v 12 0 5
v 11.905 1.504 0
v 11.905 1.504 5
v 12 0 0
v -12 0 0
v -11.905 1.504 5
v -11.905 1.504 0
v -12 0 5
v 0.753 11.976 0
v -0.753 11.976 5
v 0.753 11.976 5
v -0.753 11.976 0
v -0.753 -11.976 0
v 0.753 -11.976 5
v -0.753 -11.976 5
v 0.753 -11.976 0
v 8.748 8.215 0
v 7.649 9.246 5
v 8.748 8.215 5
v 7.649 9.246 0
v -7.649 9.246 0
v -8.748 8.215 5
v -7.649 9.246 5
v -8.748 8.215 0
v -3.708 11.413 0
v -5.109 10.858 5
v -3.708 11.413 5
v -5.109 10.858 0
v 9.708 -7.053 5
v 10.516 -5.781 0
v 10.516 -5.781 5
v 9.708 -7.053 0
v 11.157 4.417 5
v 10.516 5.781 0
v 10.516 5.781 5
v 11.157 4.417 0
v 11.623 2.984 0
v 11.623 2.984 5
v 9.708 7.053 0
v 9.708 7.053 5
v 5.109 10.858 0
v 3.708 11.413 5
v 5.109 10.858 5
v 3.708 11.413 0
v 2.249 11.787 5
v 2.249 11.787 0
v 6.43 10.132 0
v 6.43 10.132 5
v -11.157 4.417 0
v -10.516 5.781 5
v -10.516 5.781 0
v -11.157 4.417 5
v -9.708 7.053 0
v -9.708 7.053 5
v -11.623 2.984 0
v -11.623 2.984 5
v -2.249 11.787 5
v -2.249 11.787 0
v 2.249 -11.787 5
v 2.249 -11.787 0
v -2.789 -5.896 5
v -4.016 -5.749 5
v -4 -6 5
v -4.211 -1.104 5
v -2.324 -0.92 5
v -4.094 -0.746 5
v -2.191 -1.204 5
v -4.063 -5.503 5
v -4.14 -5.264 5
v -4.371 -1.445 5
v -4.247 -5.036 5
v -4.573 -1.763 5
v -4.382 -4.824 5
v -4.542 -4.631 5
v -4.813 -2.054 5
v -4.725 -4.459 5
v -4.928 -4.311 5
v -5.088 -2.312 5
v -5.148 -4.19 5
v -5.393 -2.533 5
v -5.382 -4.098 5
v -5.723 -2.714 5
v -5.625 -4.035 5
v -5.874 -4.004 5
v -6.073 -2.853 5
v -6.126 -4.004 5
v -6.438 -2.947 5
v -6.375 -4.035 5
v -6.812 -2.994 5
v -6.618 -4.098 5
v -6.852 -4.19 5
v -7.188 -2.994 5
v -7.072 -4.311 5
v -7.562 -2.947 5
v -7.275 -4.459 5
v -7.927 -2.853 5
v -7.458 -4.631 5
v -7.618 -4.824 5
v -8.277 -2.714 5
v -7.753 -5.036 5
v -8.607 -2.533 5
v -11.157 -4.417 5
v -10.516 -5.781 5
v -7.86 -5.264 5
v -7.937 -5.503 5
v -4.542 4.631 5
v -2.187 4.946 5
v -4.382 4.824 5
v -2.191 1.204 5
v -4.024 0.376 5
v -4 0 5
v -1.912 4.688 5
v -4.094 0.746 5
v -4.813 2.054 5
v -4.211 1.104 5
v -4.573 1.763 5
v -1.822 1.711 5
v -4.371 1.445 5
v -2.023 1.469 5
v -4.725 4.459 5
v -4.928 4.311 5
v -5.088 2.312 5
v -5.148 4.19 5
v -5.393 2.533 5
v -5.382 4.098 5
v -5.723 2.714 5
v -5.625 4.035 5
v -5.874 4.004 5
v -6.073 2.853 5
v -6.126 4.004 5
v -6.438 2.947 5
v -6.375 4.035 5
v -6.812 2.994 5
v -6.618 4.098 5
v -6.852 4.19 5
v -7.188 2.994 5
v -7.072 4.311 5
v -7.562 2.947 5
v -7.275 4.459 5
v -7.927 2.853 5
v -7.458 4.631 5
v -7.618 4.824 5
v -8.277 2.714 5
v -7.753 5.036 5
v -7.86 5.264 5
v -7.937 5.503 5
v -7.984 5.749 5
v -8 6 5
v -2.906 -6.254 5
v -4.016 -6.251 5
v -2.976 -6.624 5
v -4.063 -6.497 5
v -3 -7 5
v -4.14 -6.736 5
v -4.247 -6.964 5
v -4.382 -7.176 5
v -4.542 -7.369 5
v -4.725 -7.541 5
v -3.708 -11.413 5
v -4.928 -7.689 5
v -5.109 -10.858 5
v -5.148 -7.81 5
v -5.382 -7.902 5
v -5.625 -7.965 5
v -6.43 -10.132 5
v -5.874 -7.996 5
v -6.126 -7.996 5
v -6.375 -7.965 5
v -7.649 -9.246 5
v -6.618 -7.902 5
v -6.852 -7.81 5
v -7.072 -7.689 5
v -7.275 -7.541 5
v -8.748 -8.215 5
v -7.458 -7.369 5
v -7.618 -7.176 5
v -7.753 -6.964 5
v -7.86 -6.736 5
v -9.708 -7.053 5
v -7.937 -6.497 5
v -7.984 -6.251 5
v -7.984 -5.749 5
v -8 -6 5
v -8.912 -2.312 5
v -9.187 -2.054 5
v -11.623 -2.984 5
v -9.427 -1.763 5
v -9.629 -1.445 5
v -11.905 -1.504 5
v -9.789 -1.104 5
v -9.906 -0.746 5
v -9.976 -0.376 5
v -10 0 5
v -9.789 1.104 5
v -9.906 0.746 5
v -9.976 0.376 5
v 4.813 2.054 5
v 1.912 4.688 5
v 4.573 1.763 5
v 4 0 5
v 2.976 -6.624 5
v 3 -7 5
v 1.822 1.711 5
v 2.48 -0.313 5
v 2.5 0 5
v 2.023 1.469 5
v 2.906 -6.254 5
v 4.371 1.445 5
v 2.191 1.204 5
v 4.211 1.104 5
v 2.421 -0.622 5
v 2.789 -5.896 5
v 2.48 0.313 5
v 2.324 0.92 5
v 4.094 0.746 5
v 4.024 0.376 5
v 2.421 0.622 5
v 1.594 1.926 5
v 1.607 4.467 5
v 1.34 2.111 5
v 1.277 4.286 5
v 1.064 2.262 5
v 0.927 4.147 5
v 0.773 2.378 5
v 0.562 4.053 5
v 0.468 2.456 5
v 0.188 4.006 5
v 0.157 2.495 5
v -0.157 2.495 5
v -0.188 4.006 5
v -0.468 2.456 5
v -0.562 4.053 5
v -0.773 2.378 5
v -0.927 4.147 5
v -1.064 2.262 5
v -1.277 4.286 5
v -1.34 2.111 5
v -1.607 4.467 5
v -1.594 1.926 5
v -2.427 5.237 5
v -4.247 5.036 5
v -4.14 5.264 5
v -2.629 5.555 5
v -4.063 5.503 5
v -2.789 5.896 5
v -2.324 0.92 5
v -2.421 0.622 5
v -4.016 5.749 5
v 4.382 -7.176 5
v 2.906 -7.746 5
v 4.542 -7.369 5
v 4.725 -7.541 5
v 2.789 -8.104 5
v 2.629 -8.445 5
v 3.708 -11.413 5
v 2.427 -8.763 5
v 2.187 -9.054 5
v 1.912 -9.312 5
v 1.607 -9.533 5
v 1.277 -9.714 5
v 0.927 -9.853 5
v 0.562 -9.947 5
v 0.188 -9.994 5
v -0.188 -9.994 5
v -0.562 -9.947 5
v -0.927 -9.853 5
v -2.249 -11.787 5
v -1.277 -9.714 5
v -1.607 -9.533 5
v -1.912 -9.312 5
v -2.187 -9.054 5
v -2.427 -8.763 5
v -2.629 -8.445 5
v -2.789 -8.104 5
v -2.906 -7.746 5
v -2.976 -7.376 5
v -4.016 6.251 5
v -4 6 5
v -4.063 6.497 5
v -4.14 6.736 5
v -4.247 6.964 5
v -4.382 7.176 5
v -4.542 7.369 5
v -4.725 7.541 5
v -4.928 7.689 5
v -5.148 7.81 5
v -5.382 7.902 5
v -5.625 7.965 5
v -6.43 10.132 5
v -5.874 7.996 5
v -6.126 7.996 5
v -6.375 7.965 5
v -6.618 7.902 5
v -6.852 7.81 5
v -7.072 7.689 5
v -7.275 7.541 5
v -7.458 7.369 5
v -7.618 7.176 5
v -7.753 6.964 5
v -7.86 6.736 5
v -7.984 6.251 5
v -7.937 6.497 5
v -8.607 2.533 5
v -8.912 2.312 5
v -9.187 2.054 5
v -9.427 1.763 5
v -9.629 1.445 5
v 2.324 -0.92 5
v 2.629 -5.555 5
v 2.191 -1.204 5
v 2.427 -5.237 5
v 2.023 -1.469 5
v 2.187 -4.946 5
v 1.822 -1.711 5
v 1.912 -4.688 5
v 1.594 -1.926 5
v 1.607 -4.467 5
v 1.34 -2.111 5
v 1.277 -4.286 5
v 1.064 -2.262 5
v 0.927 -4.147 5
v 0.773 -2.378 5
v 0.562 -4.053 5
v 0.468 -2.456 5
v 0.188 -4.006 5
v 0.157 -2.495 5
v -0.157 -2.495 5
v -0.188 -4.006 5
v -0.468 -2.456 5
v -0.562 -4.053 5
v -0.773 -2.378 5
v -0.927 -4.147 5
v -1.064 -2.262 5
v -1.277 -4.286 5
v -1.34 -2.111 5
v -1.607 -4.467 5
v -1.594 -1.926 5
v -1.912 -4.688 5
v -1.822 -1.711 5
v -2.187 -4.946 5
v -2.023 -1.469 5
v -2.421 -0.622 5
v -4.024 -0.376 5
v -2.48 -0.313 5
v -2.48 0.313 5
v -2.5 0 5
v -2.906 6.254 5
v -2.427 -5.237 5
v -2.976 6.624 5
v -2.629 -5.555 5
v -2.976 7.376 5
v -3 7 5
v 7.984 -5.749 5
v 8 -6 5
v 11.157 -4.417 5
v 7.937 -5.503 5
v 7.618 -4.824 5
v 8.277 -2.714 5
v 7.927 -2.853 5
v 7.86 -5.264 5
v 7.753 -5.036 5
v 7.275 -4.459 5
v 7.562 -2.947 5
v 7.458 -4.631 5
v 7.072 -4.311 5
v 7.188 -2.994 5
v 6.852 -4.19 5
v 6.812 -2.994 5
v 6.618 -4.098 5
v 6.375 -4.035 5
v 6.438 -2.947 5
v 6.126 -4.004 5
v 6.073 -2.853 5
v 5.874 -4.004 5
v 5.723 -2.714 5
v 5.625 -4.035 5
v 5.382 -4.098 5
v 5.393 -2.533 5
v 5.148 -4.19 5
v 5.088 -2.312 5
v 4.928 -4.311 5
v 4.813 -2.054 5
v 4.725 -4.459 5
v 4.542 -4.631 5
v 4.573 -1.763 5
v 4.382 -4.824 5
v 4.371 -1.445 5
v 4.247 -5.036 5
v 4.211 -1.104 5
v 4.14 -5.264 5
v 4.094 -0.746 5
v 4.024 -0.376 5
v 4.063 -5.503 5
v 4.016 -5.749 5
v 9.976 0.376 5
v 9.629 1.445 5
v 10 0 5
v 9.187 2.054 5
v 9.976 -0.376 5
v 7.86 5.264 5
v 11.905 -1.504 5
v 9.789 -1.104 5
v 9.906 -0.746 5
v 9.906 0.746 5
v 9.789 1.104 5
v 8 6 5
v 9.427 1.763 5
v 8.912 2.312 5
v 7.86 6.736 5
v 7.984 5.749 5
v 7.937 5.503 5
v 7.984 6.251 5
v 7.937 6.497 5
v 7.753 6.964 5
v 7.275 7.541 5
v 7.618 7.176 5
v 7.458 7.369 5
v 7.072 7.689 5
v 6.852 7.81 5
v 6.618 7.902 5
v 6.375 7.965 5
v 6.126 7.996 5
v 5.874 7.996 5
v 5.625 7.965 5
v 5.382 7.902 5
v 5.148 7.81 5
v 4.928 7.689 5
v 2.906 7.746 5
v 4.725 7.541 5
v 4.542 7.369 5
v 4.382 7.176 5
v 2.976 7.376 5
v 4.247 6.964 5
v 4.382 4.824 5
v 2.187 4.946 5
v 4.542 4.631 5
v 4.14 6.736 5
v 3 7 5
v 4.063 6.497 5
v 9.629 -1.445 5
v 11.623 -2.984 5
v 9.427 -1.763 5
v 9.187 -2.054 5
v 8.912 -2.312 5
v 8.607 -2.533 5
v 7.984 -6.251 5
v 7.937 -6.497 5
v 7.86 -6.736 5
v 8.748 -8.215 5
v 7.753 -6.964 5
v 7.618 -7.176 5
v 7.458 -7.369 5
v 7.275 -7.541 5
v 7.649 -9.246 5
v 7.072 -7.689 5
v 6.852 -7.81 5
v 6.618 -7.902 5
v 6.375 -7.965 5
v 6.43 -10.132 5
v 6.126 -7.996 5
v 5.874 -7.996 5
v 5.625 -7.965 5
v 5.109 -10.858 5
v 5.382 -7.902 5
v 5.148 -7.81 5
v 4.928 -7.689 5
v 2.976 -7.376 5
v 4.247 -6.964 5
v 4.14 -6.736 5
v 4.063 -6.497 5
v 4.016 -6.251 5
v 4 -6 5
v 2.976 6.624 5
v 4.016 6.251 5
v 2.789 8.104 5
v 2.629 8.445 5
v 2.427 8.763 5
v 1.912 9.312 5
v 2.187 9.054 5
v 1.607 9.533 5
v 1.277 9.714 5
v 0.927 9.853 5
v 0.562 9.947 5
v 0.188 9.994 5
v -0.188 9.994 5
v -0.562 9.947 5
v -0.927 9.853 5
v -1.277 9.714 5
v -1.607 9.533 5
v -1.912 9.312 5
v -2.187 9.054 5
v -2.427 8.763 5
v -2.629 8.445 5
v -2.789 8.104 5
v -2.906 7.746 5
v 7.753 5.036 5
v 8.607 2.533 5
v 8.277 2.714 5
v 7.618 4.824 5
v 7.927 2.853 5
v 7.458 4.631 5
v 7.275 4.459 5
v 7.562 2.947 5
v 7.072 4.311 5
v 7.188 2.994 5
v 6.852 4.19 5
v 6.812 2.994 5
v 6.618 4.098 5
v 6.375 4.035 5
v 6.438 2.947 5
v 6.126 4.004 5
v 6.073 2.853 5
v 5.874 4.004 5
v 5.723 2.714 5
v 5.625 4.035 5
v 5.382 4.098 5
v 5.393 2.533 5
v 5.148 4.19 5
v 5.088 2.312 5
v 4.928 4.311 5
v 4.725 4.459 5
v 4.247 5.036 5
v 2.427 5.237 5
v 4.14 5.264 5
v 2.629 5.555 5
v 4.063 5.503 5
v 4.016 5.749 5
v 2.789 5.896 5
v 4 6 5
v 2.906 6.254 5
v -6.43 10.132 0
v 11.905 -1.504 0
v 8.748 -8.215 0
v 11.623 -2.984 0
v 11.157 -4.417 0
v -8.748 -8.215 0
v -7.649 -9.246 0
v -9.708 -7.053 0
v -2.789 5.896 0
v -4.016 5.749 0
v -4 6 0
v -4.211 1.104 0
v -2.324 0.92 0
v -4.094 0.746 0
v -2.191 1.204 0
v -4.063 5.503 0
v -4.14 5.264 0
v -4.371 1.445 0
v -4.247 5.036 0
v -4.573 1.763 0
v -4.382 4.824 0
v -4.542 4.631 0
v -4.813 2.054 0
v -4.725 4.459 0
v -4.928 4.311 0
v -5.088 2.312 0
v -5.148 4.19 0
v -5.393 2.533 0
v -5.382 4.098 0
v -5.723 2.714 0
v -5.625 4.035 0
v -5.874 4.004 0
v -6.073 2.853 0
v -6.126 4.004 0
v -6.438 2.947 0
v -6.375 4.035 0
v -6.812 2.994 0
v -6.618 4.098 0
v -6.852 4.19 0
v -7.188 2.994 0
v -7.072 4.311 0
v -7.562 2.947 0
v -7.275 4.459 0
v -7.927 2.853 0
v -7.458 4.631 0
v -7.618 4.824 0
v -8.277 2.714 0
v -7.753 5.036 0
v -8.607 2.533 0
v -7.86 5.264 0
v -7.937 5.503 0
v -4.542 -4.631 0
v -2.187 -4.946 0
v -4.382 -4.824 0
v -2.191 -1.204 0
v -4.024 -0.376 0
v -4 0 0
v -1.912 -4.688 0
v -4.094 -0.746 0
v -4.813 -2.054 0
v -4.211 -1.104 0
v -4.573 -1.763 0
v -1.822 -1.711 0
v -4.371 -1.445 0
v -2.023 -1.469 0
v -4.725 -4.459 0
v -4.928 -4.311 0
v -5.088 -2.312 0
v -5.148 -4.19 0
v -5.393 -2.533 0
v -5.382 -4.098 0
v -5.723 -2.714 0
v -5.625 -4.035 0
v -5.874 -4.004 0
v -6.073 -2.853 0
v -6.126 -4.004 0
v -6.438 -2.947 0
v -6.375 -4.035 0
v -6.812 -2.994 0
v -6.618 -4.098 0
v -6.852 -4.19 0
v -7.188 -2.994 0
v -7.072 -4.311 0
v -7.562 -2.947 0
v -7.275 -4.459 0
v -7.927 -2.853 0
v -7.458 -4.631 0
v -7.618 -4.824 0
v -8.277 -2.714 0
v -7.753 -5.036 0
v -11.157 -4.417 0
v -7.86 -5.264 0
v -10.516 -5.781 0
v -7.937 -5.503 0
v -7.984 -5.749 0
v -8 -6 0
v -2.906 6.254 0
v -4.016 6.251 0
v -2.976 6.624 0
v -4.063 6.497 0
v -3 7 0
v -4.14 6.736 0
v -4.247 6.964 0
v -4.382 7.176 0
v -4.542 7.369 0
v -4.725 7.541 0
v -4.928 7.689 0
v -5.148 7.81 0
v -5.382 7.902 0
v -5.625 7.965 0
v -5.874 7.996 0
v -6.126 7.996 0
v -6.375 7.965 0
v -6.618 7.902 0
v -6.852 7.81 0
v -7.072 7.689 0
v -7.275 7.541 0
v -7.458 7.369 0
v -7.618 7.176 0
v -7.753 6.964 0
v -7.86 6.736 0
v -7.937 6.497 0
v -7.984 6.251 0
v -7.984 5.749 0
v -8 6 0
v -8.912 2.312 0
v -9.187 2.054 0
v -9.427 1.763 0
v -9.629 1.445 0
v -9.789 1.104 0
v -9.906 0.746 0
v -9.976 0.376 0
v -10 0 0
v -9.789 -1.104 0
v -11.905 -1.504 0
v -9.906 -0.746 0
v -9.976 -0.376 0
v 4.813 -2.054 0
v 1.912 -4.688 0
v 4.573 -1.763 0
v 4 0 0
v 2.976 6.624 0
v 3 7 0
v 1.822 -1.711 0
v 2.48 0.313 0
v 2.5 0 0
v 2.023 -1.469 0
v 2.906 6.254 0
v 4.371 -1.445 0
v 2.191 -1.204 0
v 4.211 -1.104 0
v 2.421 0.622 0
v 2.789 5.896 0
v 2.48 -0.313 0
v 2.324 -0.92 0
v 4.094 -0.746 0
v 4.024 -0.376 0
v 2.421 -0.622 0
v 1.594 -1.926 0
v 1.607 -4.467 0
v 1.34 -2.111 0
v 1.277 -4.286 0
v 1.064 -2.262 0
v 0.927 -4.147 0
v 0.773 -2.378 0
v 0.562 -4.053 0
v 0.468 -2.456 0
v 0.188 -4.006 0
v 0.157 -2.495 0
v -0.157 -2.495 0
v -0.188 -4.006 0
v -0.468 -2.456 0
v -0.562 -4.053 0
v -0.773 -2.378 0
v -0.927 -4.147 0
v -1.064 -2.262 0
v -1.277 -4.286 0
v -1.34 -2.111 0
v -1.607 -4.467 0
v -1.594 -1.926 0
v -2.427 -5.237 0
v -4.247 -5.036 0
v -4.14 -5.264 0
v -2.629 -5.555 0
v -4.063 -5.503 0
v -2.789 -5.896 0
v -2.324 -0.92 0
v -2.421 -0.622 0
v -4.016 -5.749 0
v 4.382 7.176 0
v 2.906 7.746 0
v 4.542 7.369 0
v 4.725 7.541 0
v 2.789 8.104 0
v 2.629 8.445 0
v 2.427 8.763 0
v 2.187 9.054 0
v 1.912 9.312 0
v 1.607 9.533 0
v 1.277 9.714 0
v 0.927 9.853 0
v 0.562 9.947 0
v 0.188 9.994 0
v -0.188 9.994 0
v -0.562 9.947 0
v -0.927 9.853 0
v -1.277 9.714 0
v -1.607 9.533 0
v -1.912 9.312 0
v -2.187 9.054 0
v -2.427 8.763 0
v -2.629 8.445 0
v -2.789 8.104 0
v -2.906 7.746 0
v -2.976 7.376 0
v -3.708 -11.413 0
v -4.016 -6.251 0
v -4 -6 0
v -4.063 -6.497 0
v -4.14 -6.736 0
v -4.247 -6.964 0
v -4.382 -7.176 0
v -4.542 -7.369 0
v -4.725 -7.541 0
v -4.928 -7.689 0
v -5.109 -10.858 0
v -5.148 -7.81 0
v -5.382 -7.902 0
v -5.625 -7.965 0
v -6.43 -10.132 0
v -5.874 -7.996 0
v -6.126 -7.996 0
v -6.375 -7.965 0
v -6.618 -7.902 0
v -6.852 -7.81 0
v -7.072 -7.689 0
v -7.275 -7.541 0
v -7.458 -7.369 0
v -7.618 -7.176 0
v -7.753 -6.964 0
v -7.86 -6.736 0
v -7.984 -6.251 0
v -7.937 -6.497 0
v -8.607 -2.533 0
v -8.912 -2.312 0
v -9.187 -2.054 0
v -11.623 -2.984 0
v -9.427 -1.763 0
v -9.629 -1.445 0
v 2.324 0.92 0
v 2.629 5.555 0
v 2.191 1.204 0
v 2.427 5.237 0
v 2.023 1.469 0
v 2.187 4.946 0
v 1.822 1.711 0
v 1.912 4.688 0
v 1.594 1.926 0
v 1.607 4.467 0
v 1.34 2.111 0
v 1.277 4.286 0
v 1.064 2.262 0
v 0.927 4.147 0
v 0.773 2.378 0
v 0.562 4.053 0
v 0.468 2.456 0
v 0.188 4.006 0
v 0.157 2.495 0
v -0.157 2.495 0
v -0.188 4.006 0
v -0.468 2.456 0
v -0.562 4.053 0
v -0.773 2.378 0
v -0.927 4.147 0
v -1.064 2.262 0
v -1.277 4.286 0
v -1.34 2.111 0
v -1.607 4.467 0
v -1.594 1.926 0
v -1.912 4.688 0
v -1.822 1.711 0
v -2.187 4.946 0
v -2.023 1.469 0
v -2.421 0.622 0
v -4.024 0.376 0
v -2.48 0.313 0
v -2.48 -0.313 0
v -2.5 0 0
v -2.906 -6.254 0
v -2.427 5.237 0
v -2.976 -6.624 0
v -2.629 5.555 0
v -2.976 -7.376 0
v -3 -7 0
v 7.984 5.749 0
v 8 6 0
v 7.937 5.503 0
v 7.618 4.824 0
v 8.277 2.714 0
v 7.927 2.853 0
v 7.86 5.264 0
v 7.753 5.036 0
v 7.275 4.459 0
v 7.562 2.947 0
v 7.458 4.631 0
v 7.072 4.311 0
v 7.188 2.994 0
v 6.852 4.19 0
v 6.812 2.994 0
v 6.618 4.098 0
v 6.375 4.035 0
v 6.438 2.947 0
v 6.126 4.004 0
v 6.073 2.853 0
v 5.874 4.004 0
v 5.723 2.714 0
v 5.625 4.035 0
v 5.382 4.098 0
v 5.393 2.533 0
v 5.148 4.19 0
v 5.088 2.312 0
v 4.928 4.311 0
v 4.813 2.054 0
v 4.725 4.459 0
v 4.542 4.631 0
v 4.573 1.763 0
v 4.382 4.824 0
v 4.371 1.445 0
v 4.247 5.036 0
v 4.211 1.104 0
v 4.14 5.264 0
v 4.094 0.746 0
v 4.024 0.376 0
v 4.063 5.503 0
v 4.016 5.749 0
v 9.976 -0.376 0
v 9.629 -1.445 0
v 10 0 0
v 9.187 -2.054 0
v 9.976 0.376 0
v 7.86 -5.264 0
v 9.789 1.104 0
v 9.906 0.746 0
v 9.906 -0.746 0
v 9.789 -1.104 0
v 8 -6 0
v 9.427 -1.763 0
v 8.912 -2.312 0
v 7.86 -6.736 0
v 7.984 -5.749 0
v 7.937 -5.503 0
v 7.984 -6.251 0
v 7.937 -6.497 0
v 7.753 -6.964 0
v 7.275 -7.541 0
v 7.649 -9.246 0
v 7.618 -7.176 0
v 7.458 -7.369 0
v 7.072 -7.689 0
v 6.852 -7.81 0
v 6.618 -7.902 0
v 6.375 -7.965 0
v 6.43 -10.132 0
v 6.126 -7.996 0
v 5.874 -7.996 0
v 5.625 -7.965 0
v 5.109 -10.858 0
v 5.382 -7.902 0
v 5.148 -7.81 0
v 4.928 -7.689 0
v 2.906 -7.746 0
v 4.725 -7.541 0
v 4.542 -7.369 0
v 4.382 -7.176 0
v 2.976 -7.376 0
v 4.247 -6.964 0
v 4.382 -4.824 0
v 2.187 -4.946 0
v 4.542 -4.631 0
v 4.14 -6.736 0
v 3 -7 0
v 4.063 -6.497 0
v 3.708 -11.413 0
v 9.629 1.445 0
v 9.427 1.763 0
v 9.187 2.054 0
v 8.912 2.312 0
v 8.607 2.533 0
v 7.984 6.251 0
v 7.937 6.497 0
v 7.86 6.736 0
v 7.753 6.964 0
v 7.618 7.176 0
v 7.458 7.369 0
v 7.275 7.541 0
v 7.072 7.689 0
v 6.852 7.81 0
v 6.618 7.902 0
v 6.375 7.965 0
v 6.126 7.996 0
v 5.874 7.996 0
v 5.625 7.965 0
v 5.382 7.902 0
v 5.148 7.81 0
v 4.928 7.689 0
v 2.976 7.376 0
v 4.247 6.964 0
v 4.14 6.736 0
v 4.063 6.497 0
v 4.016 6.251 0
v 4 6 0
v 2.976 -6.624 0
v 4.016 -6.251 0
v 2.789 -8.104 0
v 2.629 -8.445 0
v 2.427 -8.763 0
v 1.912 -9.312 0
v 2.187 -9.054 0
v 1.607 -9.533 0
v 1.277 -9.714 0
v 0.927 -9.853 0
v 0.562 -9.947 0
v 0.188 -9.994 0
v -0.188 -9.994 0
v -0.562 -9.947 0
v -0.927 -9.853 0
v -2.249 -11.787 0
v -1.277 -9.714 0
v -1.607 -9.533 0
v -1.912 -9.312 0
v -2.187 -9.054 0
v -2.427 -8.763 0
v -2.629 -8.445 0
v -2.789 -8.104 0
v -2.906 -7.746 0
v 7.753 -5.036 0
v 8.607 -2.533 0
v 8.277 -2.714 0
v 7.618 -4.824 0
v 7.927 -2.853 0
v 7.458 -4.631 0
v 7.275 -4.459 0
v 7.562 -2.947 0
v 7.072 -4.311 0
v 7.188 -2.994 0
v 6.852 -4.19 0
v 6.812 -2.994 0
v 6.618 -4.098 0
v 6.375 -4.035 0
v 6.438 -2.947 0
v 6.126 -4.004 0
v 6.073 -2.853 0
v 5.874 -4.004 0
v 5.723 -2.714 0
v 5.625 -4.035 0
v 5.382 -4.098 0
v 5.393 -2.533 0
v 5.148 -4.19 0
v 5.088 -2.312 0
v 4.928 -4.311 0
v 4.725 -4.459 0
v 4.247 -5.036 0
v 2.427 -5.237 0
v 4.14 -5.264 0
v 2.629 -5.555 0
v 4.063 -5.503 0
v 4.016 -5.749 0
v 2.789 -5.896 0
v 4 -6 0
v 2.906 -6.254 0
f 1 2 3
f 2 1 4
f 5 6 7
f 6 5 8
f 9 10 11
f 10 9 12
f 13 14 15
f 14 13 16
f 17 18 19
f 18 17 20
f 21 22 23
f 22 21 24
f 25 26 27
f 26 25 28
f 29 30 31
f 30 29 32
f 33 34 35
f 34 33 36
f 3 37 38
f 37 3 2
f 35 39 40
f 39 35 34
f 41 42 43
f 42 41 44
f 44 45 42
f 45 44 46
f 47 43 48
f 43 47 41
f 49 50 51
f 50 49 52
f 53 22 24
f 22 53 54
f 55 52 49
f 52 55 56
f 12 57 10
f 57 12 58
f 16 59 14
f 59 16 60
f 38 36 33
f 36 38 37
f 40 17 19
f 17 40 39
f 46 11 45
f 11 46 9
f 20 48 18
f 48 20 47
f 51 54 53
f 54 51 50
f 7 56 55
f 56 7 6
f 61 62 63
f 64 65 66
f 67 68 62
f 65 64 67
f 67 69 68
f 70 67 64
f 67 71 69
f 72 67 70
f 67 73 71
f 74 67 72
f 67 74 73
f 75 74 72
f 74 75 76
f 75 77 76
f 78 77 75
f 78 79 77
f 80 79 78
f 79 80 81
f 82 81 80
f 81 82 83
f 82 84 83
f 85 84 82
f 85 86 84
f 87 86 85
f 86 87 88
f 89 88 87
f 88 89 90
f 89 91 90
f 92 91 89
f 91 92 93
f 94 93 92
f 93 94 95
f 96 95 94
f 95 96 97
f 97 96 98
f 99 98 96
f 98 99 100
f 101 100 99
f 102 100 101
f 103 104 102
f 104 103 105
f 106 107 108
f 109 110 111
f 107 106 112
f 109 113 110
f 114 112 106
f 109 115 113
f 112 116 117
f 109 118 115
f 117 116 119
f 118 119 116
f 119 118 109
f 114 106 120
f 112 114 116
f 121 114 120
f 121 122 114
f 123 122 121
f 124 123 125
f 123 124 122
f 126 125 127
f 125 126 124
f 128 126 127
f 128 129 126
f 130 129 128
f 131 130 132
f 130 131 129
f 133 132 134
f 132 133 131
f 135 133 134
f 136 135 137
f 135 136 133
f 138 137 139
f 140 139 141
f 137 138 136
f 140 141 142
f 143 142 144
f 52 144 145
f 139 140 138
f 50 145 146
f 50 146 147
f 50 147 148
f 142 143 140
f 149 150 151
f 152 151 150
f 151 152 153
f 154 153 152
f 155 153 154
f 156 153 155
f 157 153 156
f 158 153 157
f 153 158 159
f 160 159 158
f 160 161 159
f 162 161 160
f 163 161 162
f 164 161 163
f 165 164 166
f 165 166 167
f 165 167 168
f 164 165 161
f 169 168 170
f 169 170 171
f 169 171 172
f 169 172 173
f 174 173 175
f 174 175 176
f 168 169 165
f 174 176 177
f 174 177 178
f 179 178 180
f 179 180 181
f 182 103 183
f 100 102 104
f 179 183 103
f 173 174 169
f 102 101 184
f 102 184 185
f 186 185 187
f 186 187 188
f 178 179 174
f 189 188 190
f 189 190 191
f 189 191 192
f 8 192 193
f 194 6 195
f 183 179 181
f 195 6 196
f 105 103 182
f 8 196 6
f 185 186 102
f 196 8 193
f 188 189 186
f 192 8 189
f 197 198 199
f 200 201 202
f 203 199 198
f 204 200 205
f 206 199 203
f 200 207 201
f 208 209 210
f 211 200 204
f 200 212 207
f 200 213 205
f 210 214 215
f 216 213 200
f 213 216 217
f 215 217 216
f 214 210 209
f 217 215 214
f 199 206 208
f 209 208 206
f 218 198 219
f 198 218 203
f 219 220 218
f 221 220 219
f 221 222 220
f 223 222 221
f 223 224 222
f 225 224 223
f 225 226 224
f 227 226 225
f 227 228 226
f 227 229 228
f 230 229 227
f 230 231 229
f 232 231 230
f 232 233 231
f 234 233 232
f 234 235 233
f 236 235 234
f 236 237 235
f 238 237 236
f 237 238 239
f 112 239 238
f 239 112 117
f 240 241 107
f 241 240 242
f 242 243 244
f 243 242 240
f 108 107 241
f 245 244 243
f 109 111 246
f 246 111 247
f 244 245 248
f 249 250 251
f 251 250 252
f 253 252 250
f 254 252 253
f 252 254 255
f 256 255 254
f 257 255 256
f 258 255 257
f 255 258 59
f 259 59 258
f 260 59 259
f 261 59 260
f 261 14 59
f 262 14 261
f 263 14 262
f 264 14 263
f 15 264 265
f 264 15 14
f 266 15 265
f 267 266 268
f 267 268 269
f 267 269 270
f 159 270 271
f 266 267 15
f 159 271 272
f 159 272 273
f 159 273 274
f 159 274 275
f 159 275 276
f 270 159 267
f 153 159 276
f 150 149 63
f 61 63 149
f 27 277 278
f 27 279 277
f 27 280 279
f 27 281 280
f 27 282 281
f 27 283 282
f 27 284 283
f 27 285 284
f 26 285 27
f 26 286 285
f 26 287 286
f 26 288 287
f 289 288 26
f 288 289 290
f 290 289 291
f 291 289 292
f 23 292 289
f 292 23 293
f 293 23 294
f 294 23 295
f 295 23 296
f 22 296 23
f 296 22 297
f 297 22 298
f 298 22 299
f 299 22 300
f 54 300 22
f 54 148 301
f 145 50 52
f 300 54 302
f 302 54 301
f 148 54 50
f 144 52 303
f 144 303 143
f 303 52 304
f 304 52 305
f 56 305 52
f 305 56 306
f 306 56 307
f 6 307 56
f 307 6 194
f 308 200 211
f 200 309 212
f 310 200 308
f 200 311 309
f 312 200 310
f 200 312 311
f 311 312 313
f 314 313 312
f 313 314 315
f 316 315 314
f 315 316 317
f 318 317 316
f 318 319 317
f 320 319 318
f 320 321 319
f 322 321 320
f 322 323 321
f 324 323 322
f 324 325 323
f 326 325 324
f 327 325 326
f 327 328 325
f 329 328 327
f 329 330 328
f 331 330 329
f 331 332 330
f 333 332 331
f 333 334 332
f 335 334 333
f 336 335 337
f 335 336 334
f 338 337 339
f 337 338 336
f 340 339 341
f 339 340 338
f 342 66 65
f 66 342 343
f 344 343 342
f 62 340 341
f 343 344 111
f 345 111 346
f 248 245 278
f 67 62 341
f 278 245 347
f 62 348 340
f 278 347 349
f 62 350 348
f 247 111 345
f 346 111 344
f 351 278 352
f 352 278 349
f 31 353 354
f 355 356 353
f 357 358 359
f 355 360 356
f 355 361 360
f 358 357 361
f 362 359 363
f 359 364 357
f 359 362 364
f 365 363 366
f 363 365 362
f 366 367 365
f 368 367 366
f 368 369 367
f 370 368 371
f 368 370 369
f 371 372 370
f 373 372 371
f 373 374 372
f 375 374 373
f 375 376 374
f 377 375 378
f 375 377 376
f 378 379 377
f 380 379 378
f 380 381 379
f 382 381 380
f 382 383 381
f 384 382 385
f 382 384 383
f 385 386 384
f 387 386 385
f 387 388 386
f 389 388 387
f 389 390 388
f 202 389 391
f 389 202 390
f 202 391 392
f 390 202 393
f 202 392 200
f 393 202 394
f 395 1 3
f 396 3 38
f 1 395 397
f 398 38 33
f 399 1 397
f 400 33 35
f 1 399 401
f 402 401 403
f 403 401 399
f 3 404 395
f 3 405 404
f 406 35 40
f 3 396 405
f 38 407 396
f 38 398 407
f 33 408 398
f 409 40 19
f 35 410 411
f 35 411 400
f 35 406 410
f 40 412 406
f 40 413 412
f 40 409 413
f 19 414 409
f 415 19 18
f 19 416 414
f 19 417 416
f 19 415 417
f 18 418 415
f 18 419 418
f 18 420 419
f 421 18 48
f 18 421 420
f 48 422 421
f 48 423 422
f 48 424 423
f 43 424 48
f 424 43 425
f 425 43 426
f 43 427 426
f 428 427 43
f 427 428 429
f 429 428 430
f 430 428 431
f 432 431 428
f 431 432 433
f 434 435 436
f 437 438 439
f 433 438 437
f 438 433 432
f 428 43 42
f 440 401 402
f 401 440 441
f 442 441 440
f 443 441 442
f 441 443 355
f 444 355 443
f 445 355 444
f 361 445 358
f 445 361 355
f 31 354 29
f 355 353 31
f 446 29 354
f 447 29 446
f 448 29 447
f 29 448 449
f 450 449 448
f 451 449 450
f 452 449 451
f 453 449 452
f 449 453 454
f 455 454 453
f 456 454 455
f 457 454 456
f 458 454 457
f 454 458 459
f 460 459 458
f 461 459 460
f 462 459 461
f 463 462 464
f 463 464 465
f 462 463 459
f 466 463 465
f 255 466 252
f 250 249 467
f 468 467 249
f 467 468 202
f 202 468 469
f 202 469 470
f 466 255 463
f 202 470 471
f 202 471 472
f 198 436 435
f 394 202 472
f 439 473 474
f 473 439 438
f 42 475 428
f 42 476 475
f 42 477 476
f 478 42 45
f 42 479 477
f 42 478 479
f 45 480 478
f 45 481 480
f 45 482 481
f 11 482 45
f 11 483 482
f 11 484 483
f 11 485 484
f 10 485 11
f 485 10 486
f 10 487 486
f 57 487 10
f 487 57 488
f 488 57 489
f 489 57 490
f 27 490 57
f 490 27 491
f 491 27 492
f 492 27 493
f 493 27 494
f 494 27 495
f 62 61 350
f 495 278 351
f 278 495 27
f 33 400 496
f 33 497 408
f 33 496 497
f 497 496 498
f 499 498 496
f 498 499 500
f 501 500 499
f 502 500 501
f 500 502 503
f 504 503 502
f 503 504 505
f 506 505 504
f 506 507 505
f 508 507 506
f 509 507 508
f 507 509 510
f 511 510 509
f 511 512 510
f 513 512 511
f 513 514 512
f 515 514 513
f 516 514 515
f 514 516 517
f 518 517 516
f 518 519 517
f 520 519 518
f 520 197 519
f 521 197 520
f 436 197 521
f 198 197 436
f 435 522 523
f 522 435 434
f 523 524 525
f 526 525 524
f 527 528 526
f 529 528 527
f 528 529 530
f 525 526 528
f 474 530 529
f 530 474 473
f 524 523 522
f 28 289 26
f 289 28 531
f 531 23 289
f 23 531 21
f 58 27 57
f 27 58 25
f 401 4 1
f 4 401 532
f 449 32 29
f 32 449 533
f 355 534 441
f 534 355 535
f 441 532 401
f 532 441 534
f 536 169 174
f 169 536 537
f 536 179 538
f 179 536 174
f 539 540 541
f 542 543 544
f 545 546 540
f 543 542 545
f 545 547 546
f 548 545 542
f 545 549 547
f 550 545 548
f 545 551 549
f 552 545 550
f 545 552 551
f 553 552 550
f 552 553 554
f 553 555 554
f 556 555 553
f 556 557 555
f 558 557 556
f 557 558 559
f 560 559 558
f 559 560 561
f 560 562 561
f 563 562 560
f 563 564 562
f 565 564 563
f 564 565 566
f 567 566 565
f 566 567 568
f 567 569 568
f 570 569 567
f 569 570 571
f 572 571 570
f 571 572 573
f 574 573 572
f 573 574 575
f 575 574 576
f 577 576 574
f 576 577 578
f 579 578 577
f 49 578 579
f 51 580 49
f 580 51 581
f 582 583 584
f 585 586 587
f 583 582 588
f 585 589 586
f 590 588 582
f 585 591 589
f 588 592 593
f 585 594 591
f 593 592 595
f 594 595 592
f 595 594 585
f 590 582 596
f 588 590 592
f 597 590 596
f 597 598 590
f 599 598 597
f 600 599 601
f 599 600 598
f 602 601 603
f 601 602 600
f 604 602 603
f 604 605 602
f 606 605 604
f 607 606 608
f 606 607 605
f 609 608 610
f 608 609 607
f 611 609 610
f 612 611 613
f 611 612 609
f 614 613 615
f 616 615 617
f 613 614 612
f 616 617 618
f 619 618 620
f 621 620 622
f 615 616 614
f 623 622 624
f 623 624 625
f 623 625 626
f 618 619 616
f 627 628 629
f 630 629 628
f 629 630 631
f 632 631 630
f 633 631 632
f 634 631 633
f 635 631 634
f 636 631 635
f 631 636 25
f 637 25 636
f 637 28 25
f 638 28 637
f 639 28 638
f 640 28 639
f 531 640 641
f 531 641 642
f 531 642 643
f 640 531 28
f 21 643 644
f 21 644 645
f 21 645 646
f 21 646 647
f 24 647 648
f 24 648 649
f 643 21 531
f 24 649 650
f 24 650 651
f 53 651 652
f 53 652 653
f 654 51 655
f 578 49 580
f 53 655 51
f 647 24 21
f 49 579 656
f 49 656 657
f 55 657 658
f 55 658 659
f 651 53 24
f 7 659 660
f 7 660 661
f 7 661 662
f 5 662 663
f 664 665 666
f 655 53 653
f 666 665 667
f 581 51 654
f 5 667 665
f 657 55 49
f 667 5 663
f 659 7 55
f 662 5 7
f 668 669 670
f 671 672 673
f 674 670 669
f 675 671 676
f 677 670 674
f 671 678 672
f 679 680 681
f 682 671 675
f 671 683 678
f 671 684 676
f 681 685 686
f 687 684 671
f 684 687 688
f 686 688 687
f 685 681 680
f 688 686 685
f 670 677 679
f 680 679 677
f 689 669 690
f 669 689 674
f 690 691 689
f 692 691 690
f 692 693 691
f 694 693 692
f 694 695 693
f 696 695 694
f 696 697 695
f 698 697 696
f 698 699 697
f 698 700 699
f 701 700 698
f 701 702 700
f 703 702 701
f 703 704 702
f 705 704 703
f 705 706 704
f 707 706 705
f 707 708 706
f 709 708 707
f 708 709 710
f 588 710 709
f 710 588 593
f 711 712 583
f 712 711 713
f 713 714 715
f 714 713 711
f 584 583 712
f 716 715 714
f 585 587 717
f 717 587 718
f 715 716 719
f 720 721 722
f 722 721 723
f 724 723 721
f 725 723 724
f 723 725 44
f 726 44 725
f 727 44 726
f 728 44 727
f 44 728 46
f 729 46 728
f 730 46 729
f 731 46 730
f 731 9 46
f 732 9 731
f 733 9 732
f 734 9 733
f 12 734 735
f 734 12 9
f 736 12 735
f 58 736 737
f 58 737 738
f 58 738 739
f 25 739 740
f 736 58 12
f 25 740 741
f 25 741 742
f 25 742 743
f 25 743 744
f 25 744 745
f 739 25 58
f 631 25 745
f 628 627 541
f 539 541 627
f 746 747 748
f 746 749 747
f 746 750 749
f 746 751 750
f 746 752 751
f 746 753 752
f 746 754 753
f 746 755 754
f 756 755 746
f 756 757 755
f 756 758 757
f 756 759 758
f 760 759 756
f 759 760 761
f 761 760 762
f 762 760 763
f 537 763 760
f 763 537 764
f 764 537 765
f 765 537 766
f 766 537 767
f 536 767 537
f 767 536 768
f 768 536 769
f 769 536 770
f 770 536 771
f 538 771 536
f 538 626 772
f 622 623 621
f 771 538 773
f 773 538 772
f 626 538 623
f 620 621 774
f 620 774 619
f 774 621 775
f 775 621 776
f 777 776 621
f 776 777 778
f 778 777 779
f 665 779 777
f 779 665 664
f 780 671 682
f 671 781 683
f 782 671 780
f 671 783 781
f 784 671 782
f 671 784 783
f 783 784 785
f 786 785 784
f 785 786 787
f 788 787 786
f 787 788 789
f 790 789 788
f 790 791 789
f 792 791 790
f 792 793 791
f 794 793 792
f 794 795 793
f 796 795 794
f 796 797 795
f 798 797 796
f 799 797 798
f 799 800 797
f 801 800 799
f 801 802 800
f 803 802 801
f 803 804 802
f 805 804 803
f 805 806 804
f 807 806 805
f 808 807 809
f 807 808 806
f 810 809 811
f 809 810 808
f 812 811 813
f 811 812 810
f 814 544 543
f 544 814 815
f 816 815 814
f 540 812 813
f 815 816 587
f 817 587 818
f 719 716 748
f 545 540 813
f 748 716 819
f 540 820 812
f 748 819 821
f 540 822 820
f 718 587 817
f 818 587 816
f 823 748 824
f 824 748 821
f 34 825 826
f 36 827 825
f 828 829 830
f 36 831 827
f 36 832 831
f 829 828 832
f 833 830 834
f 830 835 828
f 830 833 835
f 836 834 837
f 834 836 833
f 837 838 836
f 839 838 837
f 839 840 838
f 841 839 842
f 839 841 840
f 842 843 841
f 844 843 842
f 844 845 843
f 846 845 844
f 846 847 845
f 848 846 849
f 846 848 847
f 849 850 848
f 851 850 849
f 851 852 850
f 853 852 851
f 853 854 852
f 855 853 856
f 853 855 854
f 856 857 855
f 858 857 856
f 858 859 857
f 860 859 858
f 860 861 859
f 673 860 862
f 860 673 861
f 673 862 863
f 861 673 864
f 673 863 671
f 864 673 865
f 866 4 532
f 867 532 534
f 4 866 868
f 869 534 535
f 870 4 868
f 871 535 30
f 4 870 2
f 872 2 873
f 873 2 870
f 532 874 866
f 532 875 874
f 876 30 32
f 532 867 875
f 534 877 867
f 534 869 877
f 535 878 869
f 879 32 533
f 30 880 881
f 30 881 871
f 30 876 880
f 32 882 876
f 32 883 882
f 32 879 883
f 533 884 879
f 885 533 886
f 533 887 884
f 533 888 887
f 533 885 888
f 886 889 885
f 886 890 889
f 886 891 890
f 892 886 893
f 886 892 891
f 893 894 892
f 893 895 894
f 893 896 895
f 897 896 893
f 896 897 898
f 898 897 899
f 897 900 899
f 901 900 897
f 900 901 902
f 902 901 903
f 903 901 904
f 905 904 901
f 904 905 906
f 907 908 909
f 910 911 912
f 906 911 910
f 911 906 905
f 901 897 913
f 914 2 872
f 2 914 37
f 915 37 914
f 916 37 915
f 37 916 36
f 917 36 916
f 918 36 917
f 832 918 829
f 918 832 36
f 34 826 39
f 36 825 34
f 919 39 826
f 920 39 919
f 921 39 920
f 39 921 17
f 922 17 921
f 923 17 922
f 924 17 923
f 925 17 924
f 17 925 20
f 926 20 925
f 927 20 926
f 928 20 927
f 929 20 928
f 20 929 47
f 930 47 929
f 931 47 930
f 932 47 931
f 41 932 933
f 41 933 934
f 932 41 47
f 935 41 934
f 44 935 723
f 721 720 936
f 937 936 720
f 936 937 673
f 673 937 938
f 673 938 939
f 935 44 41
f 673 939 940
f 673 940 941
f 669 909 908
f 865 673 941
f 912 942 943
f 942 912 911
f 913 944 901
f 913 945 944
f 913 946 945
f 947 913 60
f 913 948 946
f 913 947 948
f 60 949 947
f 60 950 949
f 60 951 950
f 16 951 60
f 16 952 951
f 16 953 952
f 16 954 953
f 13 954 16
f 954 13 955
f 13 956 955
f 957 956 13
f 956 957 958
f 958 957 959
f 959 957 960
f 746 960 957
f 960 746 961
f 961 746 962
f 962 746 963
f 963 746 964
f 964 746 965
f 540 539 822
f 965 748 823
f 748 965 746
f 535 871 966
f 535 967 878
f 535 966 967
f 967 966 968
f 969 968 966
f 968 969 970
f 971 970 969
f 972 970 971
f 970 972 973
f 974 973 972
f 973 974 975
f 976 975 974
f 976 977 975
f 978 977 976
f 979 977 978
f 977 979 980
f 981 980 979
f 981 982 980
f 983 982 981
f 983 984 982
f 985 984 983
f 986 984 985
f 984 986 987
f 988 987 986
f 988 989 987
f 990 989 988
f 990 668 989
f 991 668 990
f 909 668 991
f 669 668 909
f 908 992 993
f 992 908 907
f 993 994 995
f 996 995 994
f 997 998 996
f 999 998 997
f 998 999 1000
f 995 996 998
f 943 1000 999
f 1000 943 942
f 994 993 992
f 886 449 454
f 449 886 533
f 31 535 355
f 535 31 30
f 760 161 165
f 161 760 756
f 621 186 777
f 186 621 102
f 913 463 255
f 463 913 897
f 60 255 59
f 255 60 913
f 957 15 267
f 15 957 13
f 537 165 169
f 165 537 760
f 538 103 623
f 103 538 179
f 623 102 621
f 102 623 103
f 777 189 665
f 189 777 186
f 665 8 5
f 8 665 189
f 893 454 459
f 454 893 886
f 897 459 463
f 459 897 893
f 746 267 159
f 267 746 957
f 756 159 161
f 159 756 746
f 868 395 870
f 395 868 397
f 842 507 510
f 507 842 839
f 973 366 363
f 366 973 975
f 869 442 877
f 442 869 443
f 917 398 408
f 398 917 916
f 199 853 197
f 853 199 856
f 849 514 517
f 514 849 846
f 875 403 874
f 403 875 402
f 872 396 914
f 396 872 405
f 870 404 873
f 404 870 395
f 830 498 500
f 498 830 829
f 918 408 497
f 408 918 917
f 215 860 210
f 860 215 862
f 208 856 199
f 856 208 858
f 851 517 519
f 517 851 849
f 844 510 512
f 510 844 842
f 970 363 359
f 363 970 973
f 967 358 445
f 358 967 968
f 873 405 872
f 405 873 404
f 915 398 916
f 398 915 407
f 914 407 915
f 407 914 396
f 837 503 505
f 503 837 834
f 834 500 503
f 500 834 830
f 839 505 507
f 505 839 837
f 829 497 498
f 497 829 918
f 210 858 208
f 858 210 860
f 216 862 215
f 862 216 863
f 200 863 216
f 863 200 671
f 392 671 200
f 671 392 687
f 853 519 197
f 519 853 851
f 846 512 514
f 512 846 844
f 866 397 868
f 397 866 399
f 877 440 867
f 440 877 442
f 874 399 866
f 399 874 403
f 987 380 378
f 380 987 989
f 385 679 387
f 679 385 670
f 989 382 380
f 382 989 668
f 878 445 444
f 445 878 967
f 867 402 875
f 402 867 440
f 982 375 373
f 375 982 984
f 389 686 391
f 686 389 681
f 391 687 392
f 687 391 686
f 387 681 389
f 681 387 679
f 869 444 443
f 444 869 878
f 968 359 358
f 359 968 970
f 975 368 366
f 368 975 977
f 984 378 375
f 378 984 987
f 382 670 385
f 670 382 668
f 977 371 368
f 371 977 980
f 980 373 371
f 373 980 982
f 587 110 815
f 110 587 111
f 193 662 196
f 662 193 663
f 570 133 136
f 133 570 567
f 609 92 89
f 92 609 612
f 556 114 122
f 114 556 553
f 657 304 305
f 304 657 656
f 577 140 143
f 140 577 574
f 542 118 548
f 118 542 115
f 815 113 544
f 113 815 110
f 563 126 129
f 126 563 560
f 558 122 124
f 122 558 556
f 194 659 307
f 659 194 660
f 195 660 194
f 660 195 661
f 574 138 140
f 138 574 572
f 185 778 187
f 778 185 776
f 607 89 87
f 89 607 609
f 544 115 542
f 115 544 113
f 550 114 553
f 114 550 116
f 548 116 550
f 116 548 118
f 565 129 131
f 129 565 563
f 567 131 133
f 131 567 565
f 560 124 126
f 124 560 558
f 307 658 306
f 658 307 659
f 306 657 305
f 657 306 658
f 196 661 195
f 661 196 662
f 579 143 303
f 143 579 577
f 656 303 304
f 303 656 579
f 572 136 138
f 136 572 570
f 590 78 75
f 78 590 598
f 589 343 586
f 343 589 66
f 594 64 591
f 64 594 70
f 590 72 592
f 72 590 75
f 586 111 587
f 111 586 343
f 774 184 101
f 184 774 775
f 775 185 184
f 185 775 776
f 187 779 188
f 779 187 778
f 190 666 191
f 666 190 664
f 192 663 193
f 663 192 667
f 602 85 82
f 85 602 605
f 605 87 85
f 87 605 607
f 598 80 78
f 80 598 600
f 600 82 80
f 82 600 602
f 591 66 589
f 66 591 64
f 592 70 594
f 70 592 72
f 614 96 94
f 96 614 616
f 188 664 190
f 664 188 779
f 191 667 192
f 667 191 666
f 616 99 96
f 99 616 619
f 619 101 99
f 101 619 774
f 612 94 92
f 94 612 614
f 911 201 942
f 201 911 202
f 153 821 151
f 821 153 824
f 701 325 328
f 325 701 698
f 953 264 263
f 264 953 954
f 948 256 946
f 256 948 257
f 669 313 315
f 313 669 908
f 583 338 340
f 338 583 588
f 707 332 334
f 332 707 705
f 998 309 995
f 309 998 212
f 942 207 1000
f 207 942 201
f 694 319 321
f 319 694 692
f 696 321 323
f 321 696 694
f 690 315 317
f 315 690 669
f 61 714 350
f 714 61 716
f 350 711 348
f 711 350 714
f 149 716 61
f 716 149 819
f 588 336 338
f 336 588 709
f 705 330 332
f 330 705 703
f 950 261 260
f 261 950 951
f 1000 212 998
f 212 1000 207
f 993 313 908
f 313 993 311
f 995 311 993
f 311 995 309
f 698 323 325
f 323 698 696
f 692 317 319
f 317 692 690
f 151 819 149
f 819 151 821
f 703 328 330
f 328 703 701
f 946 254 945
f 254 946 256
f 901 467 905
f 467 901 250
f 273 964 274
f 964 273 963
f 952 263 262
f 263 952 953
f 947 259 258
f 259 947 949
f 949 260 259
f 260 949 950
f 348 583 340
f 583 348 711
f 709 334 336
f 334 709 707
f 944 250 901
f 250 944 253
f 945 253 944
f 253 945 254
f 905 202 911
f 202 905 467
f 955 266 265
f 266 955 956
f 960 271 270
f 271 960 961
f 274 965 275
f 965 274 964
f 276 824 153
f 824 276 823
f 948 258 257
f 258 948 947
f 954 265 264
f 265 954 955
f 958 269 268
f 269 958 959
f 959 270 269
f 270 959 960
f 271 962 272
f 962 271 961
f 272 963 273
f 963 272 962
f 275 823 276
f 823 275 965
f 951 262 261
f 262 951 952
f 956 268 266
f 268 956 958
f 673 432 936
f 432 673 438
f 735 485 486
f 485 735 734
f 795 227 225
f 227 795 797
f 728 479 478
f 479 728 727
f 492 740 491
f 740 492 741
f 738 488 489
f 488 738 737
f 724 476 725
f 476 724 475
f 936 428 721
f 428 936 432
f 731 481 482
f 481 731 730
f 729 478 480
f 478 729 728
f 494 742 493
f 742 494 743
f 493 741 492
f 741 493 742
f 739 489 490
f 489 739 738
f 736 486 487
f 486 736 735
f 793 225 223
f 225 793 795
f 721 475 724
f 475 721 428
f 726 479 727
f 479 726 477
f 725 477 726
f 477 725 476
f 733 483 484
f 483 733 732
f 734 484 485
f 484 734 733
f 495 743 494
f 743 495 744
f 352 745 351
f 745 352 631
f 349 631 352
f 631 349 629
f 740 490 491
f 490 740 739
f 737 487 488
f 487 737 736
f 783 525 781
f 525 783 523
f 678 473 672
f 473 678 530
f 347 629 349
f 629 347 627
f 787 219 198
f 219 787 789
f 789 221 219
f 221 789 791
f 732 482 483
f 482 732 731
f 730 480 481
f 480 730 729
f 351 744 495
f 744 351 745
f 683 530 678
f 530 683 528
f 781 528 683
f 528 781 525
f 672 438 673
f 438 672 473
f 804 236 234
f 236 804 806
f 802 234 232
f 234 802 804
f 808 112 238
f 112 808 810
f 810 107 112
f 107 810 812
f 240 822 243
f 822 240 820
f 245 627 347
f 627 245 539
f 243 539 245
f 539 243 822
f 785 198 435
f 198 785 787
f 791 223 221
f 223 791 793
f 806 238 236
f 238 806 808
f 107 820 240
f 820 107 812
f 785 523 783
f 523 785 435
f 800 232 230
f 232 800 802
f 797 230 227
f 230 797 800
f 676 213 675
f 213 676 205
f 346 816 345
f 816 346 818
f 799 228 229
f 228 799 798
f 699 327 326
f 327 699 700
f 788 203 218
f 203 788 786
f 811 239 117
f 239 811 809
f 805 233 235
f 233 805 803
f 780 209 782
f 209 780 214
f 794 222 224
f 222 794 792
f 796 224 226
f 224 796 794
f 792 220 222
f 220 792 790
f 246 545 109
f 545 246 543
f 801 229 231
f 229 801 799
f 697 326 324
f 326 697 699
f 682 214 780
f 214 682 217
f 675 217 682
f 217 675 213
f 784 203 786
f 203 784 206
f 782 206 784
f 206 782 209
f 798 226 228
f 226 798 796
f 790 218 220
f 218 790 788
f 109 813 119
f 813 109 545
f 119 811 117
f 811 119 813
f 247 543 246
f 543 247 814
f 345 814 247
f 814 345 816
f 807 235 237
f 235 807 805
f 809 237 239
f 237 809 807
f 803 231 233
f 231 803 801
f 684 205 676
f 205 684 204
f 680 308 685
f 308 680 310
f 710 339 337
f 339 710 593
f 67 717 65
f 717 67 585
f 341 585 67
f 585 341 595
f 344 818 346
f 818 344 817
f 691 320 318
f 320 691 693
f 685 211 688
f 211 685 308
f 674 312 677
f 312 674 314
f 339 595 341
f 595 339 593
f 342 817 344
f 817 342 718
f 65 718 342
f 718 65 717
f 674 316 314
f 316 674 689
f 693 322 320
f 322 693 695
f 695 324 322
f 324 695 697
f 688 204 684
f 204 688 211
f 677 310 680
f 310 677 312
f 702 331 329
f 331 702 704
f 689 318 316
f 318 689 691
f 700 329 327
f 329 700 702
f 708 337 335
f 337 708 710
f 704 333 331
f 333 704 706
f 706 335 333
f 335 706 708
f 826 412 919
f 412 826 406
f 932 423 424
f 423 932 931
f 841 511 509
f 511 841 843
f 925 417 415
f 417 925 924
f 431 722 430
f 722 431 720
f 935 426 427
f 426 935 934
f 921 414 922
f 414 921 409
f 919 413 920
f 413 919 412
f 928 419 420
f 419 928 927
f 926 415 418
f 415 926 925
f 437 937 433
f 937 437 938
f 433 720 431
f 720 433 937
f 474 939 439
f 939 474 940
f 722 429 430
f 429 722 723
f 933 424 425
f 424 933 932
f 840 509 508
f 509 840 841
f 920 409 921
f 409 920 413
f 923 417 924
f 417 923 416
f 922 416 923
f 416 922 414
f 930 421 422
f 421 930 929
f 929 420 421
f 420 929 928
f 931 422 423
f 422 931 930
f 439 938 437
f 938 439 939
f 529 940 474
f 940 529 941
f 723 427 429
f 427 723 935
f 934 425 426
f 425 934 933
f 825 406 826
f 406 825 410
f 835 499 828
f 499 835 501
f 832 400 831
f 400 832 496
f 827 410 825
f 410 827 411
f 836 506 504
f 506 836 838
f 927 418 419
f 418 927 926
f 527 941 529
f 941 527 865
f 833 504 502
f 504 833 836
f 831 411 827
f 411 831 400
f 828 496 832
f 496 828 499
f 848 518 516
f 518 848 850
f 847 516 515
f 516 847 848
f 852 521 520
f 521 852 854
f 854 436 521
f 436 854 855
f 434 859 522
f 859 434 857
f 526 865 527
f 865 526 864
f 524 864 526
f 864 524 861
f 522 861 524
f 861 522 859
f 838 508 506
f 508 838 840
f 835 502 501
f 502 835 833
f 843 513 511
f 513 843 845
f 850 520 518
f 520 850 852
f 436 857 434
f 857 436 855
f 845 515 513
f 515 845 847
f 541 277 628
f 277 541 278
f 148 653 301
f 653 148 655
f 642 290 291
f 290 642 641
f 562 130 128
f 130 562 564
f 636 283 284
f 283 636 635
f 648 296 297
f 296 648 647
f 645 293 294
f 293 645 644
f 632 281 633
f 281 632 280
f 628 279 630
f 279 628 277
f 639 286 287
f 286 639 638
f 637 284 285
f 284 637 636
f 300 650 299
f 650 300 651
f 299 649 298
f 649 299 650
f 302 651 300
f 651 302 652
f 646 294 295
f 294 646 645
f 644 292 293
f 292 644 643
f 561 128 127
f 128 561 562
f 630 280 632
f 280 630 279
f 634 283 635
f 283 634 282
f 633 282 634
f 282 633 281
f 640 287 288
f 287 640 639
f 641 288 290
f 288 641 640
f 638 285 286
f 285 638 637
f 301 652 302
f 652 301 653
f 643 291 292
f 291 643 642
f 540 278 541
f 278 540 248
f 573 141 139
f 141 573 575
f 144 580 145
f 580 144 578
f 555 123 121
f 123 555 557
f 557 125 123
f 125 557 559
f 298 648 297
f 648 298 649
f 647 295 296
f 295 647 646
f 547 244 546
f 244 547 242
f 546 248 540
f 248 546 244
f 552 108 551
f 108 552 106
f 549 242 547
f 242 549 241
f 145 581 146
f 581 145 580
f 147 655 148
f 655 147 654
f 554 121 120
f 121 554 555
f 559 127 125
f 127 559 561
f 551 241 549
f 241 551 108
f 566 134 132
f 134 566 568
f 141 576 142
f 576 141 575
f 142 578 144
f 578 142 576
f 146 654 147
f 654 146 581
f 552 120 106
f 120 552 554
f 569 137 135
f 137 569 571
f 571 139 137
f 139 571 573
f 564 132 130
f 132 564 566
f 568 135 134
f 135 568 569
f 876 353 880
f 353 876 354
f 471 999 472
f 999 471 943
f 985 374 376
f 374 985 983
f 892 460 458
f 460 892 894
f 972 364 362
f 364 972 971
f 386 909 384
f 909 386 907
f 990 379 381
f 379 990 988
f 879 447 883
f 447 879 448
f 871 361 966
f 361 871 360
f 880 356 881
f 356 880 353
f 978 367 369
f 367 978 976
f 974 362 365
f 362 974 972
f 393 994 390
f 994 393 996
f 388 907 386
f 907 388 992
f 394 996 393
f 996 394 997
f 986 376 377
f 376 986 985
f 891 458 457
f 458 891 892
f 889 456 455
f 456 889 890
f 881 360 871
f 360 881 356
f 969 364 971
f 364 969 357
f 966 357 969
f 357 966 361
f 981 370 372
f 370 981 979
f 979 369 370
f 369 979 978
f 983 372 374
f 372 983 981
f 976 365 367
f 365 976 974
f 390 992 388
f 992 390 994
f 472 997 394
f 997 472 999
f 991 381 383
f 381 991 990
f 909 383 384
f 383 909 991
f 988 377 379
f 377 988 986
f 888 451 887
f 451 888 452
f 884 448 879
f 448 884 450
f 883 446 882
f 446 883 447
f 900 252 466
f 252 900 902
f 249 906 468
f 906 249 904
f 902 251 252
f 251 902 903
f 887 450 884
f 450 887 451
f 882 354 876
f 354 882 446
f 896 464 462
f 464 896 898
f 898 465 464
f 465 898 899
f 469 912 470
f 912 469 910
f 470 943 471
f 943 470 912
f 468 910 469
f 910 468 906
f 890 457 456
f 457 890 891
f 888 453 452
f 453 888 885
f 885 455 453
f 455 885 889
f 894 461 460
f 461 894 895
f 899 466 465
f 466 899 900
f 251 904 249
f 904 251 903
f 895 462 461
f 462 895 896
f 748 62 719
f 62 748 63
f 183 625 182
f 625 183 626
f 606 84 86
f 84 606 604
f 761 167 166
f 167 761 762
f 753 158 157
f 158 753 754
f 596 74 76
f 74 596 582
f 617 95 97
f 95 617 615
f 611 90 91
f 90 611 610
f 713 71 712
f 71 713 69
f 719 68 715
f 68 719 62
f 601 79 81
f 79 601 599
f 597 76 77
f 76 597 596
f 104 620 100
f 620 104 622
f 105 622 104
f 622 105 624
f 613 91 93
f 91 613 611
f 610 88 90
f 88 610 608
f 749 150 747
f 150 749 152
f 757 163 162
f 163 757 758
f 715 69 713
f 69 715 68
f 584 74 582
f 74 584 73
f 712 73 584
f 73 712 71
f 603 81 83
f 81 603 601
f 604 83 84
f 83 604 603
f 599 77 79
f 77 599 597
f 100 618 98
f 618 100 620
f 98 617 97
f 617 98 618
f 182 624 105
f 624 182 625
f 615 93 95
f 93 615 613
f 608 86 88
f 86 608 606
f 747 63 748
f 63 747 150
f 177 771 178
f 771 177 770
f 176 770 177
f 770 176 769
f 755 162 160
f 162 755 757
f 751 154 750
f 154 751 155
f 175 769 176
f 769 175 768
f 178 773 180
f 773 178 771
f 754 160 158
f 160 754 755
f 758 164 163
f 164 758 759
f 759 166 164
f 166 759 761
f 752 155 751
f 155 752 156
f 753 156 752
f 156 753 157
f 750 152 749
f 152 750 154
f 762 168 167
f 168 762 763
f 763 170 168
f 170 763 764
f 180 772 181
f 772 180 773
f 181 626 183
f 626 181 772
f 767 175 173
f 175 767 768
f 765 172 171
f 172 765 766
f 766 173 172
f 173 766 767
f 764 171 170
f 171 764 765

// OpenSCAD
$fn=50;

difference(){
    cylinder(5,12,12);
    translate([7,0,-1])cylinder(7,3,3);
    translate([-7,0,-1])cylinder(7,3,3);
    translate([0,-7,-1])cylinder(7,3,3);
    translate([0,7,-1])cylinder(7,3,3);
    translate([0,0,-1])cylinder(7,2.5,2.5);
    translate([6,6,-1])cylinder(7,2,2);
    translate([-6,6,-1])cylinder(7,2,2);
    translate([6,-6,-1])cylinder(7,2,2);
    translate([-6,-6,-1])cylinder(7,2,2);
    
};
